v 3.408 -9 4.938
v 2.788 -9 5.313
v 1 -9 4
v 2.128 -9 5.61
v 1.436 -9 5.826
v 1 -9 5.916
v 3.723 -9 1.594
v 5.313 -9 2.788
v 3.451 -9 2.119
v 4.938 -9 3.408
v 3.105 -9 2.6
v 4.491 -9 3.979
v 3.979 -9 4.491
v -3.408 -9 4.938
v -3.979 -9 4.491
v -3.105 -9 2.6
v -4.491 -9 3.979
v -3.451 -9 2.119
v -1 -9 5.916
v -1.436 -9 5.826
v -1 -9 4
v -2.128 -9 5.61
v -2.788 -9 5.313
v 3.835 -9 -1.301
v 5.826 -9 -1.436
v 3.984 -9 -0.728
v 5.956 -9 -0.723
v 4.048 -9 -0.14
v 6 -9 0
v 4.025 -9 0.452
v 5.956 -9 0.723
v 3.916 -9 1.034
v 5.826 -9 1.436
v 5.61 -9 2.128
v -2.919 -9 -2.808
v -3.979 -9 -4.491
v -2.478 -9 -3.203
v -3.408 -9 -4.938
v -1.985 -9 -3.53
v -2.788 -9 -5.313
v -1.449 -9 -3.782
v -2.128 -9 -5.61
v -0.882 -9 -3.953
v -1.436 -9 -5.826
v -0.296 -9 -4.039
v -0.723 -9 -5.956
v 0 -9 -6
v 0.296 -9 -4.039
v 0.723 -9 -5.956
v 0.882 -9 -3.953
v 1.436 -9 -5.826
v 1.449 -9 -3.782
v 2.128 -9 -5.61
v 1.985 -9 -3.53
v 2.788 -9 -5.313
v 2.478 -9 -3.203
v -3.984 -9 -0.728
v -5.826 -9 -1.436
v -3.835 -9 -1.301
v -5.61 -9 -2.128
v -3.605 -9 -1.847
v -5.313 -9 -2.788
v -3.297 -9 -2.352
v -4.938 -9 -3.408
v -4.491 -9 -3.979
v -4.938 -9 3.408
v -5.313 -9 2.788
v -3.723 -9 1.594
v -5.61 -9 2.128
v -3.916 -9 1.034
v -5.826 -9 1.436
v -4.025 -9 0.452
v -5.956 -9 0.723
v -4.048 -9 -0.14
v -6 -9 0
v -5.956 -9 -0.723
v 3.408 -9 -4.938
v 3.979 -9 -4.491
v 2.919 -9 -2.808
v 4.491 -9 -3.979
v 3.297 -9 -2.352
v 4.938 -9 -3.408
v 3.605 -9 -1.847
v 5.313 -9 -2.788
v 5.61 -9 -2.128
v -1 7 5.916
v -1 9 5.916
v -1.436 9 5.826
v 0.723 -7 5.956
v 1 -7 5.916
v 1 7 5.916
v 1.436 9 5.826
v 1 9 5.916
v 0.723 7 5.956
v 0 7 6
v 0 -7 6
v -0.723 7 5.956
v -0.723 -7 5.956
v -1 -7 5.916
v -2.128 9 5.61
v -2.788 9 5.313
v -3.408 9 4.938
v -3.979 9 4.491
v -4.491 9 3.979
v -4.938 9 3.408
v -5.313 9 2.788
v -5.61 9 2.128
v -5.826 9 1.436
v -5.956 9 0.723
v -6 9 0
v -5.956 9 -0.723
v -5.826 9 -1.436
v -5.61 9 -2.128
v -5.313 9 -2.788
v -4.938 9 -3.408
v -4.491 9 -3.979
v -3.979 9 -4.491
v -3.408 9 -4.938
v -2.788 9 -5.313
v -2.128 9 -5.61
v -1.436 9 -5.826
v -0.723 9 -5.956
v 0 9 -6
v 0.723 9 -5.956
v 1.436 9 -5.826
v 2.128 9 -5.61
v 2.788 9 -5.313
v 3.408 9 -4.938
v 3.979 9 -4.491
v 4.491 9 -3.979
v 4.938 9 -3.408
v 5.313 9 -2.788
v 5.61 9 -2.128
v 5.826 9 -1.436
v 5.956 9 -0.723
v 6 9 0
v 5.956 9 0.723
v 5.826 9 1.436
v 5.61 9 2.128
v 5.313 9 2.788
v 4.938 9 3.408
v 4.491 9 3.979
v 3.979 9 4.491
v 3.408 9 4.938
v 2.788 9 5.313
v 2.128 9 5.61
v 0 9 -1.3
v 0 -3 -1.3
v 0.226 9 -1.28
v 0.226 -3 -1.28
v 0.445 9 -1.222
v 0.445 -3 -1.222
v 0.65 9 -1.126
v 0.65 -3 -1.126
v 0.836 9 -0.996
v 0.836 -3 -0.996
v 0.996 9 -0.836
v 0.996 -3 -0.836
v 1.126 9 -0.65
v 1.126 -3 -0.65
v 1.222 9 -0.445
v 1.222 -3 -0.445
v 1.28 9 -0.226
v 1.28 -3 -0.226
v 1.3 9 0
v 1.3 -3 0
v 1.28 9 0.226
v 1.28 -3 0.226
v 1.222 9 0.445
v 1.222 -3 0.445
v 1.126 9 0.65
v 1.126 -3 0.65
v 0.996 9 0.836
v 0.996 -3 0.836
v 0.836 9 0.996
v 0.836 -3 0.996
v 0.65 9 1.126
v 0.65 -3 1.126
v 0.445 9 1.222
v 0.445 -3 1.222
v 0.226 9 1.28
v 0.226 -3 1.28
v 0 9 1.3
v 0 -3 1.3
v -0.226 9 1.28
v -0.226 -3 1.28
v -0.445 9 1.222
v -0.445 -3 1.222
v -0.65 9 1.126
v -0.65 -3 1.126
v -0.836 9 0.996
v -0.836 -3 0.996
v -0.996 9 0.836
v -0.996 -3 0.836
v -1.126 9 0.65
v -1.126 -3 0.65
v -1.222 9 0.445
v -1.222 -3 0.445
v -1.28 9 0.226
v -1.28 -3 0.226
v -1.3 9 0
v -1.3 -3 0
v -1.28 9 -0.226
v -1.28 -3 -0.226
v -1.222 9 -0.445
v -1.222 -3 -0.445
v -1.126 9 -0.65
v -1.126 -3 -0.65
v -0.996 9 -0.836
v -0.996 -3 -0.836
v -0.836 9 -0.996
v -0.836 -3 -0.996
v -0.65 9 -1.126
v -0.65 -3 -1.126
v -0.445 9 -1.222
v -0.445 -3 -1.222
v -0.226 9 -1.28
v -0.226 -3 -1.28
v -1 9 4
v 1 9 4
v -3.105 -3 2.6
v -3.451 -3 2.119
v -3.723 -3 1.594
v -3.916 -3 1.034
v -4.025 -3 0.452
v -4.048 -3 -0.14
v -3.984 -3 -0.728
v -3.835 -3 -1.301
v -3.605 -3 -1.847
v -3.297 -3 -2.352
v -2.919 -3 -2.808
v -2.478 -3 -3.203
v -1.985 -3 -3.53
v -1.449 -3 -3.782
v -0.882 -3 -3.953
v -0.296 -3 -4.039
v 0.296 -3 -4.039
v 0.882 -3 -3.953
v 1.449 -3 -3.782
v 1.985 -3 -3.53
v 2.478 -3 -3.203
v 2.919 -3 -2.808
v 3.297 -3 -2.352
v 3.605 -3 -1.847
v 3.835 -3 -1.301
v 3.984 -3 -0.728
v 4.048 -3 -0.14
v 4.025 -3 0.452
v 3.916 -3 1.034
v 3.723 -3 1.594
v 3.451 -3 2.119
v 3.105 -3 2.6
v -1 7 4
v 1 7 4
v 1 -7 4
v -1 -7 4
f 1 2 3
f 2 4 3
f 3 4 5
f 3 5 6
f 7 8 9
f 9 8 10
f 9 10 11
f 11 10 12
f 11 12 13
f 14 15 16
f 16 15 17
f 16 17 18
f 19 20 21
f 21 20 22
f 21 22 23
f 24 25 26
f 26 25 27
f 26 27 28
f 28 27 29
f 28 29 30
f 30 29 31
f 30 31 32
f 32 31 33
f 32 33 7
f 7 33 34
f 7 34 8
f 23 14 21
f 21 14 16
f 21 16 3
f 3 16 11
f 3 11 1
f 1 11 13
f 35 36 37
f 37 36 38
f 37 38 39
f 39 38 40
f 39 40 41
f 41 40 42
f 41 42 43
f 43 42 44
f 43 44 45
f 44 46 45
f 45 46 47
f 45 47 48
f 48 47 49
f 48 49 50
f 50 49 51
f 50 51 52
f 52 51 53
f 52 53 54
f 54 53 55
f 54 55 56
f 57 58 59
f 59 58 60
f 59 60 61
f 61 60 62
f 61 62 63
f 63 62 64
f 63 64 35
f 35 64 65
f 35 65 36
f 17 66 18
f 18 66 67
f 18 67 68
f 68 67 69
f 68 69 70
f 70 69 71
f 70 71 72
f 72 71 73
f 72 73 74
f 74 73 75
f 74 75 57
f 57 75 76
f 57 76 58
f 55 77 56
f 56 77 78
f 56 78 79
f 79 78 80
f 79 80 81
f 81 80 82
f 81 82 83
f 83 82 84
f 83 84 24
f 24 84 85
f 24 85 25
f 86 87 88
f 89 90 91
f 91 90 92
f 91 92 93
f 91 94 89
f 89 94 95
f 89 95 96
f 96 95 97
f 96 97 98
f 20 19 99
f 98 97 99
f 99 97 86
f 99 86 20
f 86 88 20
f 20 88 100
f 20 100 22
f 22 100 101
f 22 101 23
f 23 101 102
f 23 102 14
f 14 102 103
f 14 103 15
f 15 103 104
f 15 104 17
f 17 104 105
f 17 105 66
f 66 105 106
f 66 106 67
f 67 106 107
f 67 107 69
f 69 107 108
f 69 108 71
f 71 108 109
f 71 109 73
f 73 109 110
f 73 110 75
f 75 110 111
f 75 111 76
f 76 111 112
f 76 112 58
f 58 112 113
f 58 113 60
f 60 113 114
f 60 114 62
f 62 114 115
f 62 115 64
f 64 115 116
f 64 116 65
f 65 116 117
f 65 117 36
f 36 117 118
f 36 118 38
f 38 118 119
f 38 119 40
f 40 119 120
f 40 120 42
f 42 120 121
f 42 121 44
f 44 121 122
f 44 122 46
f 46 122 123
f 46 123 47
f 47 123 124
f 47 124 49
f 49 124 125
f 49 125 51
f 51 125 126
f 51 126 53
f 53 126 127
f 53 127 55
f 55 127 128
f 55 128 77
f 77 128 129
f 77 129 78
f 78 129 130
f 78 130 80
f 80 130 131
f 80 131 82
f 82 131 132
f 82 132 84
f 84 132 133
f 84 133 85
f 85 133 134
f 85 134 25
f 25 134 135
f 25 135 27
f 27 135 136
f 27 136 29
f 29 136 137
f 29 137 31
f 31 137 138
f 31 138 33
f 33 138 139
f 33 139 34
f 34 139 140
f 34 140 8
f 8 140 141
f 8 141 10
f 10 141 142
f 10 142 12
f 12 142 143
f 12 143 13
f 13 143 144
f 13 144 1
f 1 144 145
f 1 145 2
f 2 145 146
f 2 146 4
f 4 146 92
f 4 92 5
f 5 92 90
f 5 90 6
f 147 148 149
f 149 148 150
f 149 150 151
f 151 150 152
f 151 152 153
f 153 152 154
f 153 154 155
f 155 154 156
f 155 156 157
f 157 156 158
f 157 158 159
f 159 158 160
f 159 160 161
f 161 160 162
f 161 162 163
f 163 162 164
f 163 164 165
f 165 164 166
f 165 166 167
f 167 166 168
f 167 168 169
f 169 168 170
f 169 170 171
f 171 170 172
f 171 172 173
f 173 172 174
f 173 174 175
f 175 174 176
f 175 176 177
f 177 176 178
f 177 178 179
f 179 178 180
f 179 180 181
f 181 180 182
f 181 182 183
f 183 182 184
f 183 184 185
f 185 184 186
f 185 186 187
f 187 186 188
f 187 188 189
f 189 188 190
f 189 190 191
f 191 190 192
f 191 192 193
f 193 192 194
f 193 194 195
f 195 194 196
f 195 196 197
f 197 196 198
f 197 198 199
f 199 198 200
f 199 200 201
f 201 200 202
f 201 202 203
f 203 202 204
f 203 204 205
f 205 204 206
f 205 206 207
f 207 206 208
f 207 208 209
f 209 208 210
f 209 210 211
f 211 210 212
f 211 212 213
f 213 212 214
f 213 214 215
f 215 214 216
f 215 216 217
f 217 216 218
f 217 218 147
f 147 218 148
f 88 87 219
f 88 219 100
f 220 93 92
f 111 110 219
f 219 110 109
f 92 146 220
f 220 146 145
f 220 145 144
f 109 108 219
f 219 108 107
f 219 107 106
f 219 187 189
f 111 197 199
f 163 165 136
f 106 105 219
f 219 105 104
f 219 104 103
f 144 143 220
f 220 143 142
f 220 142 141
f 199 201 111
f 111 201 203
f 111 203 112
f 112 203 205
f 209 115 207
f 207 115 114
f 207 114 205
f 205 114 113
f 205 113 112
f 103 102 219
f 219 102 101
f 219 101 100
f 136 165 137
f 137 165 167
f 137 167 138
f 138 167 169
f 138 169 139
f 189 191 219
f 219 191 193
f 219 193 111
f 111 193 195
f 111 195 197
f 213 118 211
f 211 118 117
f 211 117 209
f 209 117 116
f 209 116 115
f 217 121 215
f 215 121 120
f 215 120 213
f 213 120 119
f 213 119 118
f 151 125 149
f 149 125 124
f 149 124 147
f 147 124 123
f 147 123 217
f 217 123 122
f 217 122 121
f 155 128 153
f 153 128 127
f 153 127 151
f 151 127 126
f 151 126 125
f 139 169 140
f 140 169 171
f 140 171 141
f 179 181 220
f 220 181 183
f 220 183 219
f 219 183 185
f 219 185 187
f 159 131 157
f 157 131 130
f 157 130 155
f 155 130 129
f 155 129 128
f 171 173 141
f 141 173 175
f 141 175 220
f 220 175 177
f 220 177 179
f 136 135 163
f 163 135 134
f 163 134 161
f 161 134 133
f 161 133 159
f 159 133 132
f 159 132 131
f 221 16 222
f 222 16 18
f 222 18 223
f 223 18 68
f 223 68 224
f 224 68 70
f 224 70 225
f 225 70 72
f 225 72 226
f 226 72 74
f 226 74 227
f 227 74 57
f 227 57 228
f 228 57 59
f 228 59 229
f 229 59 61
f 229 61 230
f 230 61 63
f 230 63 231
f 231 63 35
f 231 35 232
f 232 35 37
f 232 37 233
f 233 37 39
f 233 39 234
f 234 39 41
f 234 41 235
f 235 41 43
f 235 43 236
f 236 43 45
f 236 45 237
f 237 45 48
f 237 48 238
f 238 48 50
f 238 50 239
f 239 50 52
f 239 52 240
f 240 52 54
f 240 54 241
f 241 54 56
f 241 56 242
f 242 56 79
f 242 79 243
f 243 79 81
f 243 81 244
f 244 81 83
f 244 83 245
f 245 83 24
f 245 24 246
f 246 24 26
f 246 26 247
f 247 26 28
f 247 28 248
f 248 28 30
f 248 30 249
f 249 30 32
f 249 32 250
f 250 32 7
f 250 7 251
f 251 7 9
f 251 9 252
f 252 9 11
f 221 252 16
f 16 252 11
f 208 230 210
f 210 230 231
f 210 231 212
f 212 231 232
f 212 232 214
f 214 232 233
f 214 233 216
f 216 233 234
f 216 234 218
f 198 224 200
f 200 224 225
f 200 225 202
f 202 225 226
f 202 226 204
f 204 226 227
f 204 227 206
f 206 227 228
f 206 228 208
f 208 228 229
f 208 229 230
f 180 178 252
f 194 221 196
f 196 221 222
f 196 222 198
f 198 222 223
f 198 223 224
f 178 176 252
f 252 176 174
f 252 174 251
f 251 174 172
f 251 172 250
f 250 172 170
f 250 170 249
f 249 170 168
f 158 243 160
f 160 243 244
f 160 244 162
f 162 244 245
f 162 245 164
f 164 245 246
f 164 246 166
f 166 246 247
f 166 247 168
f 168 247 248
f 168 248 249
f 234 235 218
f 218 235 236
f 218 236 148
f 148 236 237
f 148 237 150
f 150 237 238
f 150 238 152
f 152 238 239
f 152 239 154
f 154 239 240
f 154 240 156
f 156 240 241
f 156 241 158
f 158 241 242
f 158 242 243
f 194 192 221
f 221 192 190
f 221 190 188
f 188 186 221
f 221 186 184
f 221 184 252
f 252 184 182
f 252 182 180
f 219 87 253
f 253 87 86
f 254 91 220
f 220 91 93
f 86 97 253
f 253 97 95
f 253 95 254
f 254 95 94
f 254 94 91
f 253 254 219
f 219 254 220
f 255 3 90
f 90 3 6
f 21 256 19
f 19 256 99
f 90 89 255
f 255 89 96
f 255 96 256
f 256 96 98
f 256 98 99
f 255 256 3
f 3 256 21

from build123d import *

# Parameters (mm, degrees)
ESBO_O2_R                = 6
ESBO_O2_R_2              = 1.3
RESSALTO_EXTRUS_O1_DEPTH = 9
CORTE_EXTRUS_O1_DEPTH    = 6
ESBO_O4_W                = 2
ESBO_O4_H                = 3
CORTE_EXTRUS_O2_DEPTH    = 2


with BuildPart() as part:
    # Esboço2 → Ressalto-extrusão1 (new, symmetric)
    with BuildSketch(Plane(origin=(0, 0, 0), x_dir=(1, 0, 0), z_dir=(0, 1, 0))):
        with Locations(Location((0, 0, 0), (0, 0, 270))):
            Circle(ESBO_O2_R)
        with Locations(Location((0, 0, 0), (0, 0, 270))):
            Circle(ESBO_O2_R_2, mode=Mode.SUBTRACT)
    extrude(amount=RESSALTO_EXTRUS_O1_DEPTH, both=True)

    # Esboço3 → Corte-extrusão1 (cut)
    with BuildSketch(Plane.XZ.offset(9)):
        with BuildLine():
            Line((-3.105237511, 2.6), (3.105237511, 2.6))
            ThreePointArc((3.105237511, 2.6), (0, -4.05), (-3.105237511, 2.6))
        make_face()
    extrude(amount=-CORTE_EXTRUS_O1_DEPTH, mode=Mode.SUBTRACT)

    # Esboço4 → Corte-extrusão2 (cut)
    with BuildSketch(Plane(origin=(0, 9, 0), x_dir=(1, 0, 0), z_dir=(0, 1, 0))):
        with Locations((0, -5.5)):
            Rectangle(ESBO_O4_W, ESBO_O4_H)
    corte_extrus_o2 = extrude(amount=-CORTE_EXTRUS_O2_DEPTH, mode=Mode.SUBTRACT)

    # Espelhar1: Corte-extrusão2 across plane
    add(corte_extrus_o2.mirror(Plane.ZX), mode=Mode.SUBTRACT)


solid = part.part
